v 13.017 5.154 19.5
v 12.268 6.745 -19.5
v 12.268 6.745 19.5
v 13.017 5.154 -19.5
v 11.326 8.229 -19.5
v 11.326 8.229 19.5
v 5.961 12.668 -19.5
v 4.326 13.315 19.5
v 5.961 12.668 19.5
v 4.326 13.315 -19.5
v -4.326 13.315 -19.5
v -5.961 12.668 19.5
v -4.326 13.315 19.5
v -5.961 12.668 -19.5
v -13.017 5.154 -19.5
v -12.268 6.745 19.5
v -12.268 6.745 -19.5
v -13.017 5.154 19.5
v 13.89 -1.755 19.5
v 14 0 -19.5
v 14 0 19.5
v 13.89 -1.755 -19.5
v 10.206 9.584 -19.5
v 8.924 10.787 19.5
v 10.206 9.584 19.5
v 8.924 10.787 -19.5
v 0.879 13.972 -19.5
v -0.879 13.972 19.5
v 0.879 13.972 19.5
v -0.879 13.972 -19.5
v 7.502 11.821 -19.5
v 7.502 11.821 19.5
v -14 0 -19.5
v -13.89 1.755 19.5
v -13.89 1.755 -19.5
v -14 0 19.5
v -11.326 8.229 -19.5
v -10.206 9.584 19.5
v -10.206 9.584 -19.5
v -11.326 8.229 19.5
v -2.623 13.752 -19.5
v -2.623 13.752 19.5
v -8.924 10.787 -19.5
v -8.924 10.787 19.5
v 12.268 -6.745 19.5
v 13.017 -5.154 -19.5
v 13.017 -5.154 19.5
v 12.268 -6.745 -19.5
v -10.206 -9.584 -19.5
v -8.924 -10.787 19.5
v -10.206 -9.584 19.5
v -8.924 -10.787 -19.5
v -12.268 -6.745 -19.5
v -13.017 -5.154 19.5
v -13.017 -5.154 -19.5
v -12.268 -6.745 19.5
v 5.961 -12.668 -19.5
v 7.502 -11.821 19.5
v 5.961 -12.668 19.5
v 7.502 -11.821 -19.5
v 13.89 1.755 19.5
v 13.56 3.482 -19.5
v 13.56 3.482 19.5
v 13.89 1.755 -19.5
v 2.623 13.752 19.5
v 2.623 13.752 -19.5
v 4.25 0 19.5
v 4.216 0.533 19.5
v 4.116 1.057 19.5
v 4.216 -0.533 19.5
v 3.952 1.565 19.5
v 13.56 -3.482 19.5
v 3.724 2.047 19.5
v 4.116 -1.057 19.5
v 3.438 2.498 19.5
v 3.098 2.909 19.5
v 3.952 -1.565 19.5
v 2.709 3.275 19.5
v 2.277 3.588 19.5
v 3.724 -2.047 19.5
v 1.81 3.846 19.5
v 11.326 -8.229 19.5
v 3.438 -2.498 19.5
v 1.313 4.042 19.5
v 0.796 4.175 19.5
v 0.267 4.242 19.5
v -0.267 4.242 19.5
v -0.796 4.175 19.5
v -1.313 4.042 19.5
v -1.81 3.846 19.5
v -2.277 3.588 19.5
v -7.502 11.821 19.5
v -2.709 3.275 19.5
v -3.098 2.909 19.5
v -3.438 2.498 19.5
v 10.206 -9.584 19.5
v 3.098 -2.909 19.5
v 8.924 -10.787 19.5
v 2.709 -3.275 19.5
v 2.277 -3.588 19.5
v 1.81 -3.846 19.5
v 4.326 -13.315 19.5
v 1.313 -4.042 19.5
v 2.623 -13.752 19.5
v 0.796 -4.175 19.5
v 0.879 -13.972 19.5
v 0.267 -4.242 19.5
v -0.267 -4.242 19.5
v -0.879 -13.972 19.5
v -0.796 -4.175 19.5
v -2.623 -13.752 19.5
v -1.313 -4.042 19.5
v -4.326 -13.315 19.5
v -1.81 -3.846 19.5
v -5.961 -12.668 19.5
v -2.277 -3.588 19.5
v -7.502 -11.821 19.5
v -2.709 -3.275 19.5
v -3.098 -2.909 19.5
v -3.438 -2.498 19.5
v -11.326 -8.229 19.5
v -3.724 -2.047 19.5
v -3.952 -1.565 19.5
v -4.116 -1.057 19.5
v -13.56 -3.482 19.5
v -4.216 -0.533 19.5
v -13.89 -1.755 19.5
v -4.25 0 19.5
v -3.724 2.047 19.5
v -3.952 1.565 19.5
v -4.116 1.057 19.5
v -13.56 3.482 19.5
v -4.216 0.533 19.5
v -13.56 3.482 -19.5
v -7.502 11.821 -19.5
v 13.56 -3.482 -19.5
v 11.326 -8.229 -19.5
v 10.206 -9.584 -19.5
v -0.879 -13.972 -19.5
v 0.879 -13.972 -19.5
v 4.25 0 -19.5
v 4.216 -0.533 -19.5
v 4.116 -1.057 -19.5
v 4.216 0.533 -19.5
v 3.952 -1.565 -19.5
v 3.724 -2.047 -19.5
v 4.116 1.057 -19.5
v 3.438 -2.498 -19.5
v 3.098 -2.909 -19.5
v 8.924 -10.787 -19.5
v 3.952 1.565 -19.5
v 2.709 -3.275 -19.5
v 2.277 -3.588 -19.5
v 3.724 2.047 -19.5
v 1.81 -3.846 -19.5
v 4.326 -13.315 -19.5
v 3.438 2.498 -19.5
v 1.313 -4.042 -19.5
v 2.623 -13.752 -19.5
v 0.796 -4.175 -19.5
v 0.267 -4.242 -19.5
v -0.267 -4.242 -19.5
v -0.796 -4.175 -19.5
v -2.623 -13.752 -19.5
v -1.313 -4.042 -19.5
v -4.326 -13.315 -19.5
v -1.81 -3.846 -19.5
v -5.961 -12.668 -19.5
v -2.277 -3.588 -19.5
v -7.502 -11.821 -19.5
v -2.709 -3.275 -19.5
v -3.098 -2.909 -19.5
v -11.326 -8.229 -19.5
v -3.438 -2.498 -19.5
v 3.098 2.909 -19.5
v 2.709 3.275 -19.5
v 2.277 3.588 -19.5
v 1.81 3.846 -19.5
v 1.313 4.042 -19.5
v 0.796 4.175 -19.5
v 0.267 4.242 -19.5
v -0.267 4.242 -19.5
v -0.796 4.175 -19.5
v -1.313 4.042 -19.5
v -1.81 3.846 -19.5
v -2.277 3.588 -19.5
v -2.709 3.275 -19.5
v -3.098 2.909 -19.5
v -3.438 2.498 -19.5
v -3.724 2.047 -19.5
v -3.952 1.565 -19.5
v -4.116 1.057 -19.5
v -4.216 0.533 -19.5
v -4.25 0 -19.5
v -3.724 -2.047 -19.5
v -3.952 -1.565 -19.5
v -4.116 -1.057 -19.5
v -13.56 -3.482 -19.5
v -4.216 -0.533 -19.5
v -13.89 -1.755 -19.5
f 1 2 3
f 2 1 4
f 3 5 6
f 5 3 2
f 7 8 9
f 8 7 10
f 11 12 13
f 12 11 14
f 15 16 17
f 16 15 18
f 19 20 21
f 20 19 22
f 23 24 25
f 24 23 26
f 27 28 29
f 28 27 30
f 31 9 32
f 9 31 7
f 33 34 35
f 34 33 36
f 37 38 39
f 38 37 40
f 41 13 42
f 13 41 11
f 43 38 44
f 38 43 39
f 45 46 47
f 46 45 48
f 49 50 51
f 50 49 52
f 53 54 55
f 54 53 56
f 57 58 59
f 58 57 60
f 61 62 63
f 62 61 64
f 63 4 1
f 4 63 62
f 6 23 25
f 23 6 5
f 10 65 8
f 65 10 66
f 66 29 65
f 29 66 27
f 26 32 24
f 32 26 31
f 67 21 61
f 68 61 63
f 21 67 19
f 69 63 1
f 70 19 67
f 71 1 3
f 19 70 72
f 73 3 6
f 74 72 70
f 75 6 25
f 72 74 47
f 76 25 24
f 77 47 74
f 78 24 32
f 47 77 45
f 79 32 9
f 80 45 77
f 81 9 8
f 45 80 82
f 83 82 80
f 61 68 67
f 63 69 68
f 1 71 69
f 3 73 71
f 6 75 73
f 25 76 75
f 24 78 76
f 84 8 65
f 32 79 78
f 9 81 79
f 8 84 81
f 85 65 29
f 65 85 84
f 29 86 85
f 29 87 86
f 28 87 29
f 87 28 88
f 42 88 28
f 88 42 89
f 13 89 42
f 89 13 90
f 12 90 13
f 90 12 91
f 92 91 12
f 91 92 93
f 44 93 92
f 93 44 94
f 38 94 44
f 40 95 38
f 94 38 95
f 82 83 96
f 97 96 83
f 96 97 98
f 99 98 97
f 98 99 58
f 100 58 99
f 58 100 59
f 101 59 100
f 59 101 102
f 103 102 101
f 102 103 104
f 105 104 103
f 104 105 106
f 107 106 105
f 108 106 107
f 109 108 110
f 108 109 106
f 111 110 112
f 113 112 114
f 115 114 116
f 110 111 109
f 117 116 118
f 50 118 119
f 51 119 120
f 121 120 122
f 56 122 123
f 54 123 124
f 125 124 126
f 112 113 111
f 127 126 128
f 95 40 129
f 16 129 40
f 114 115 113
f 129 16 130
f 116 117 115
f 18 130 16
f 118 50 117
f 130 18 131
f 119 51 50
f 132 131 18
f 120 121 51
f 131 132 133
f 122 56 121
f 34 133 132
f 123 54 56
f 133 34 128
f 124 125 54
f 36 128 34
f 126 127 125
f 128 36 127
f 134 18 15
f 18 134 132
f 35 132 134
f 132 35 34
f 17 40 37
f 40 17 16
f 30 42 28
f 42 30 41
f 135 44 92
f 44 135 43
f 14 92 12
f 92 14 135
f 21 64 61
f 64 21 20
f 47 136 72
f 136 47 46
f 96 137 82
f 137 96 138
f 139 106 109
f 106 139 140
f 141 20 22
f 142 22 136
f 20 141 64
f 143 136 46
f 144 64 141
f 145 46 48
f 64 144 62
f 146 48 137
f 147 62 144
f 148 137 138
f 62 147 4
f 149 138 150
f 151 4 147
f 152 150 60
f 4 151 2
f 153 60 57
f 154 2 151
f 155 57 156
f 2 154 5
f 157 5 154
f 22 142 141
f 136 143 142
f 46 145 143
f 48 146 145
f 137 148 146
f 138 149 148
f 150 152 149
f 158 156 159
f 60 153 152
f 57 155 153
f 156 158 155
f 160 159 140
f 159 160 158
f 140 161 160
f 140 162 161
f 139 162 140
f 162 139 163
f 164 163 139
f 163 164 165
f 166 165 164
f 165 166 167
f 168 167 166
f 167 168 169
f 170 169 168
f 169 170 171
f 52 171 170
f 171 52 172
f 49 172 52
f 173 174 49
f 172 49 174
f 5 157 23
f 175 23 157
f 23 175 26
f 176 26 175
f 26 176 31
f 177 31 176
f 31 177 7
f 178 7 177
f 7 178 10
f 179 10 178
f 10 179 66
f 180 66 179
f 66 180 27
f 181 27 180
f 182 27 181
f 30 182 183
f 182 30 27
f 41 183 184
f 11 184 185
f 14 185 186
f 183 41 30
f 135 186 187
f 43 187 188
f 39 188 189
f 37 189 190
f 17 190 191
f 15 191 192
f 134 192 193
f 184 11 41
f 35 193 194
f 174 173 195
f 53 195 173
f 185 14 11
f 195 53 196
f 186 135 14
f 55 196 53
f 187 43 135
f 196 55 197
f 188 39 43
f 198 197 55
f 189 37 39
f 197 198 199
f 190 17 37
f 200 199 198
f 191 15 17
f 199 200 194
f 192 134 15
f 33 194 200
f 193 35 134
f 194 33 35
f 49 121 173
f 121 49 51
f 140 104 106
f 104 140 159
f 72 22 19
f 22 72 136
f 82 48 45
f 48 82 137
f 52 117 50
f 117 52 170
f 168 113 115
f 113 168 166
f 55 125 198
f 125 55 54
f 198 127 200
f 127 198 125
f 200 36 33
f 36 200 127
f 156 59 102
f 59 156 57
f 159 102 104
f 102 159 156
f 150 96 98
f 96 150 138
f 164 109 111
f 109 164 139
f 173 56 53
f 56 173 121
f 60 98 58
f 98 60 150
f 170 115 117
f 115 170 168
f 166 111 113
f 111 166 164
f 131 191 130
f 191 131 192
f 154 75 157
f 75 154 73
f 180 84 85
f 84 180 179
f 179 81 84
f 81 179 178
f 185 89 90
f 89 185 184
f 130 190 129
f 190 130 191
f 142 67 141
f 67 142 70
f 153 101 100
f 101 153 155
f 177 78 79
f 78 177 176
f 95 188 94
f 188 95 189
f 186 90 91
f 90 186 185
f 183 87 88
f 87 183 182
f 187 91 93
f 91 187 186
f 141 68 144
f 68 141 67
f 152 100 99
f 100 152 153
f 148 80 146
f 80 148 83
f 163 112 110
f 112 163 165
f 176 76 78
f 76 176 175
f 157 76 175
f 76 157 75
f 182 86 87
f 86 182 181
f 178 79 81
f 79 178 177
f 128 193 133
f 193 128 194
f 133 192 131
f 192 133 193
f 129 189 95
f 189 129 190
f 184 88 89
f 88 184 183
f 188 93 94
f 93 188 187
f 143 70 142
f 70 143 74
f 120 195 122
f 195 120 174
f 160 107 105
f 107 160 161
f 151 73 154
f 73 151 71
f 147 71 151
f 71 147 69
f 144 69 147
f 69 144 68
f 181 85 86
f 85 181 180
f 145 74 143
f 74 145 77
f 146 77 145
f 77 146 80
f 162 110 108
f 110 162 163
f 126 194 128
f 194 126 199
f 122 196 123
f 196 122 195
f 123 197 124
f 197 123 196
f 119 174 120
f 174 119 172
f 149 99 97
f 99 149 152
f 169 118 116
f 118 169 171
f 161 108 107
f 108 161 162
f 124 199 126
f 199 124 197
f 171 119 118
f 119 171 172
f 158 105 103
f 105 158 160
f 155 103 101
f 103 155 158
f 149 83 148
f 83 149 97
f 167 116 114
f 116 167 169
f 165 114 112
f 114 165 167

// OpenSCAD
$fn = 50;


difference() {
	union() {
		translate(v = [0, 0, -19.5000000000]) {
			cylinder(h = 39, r = 14.0000000000);
		}
	}
	union() {
		translate(v = [0, 0, -100.0000000000]) {
			cylinder(h = 200, r = 4.2500000000);
		}
	}
}
